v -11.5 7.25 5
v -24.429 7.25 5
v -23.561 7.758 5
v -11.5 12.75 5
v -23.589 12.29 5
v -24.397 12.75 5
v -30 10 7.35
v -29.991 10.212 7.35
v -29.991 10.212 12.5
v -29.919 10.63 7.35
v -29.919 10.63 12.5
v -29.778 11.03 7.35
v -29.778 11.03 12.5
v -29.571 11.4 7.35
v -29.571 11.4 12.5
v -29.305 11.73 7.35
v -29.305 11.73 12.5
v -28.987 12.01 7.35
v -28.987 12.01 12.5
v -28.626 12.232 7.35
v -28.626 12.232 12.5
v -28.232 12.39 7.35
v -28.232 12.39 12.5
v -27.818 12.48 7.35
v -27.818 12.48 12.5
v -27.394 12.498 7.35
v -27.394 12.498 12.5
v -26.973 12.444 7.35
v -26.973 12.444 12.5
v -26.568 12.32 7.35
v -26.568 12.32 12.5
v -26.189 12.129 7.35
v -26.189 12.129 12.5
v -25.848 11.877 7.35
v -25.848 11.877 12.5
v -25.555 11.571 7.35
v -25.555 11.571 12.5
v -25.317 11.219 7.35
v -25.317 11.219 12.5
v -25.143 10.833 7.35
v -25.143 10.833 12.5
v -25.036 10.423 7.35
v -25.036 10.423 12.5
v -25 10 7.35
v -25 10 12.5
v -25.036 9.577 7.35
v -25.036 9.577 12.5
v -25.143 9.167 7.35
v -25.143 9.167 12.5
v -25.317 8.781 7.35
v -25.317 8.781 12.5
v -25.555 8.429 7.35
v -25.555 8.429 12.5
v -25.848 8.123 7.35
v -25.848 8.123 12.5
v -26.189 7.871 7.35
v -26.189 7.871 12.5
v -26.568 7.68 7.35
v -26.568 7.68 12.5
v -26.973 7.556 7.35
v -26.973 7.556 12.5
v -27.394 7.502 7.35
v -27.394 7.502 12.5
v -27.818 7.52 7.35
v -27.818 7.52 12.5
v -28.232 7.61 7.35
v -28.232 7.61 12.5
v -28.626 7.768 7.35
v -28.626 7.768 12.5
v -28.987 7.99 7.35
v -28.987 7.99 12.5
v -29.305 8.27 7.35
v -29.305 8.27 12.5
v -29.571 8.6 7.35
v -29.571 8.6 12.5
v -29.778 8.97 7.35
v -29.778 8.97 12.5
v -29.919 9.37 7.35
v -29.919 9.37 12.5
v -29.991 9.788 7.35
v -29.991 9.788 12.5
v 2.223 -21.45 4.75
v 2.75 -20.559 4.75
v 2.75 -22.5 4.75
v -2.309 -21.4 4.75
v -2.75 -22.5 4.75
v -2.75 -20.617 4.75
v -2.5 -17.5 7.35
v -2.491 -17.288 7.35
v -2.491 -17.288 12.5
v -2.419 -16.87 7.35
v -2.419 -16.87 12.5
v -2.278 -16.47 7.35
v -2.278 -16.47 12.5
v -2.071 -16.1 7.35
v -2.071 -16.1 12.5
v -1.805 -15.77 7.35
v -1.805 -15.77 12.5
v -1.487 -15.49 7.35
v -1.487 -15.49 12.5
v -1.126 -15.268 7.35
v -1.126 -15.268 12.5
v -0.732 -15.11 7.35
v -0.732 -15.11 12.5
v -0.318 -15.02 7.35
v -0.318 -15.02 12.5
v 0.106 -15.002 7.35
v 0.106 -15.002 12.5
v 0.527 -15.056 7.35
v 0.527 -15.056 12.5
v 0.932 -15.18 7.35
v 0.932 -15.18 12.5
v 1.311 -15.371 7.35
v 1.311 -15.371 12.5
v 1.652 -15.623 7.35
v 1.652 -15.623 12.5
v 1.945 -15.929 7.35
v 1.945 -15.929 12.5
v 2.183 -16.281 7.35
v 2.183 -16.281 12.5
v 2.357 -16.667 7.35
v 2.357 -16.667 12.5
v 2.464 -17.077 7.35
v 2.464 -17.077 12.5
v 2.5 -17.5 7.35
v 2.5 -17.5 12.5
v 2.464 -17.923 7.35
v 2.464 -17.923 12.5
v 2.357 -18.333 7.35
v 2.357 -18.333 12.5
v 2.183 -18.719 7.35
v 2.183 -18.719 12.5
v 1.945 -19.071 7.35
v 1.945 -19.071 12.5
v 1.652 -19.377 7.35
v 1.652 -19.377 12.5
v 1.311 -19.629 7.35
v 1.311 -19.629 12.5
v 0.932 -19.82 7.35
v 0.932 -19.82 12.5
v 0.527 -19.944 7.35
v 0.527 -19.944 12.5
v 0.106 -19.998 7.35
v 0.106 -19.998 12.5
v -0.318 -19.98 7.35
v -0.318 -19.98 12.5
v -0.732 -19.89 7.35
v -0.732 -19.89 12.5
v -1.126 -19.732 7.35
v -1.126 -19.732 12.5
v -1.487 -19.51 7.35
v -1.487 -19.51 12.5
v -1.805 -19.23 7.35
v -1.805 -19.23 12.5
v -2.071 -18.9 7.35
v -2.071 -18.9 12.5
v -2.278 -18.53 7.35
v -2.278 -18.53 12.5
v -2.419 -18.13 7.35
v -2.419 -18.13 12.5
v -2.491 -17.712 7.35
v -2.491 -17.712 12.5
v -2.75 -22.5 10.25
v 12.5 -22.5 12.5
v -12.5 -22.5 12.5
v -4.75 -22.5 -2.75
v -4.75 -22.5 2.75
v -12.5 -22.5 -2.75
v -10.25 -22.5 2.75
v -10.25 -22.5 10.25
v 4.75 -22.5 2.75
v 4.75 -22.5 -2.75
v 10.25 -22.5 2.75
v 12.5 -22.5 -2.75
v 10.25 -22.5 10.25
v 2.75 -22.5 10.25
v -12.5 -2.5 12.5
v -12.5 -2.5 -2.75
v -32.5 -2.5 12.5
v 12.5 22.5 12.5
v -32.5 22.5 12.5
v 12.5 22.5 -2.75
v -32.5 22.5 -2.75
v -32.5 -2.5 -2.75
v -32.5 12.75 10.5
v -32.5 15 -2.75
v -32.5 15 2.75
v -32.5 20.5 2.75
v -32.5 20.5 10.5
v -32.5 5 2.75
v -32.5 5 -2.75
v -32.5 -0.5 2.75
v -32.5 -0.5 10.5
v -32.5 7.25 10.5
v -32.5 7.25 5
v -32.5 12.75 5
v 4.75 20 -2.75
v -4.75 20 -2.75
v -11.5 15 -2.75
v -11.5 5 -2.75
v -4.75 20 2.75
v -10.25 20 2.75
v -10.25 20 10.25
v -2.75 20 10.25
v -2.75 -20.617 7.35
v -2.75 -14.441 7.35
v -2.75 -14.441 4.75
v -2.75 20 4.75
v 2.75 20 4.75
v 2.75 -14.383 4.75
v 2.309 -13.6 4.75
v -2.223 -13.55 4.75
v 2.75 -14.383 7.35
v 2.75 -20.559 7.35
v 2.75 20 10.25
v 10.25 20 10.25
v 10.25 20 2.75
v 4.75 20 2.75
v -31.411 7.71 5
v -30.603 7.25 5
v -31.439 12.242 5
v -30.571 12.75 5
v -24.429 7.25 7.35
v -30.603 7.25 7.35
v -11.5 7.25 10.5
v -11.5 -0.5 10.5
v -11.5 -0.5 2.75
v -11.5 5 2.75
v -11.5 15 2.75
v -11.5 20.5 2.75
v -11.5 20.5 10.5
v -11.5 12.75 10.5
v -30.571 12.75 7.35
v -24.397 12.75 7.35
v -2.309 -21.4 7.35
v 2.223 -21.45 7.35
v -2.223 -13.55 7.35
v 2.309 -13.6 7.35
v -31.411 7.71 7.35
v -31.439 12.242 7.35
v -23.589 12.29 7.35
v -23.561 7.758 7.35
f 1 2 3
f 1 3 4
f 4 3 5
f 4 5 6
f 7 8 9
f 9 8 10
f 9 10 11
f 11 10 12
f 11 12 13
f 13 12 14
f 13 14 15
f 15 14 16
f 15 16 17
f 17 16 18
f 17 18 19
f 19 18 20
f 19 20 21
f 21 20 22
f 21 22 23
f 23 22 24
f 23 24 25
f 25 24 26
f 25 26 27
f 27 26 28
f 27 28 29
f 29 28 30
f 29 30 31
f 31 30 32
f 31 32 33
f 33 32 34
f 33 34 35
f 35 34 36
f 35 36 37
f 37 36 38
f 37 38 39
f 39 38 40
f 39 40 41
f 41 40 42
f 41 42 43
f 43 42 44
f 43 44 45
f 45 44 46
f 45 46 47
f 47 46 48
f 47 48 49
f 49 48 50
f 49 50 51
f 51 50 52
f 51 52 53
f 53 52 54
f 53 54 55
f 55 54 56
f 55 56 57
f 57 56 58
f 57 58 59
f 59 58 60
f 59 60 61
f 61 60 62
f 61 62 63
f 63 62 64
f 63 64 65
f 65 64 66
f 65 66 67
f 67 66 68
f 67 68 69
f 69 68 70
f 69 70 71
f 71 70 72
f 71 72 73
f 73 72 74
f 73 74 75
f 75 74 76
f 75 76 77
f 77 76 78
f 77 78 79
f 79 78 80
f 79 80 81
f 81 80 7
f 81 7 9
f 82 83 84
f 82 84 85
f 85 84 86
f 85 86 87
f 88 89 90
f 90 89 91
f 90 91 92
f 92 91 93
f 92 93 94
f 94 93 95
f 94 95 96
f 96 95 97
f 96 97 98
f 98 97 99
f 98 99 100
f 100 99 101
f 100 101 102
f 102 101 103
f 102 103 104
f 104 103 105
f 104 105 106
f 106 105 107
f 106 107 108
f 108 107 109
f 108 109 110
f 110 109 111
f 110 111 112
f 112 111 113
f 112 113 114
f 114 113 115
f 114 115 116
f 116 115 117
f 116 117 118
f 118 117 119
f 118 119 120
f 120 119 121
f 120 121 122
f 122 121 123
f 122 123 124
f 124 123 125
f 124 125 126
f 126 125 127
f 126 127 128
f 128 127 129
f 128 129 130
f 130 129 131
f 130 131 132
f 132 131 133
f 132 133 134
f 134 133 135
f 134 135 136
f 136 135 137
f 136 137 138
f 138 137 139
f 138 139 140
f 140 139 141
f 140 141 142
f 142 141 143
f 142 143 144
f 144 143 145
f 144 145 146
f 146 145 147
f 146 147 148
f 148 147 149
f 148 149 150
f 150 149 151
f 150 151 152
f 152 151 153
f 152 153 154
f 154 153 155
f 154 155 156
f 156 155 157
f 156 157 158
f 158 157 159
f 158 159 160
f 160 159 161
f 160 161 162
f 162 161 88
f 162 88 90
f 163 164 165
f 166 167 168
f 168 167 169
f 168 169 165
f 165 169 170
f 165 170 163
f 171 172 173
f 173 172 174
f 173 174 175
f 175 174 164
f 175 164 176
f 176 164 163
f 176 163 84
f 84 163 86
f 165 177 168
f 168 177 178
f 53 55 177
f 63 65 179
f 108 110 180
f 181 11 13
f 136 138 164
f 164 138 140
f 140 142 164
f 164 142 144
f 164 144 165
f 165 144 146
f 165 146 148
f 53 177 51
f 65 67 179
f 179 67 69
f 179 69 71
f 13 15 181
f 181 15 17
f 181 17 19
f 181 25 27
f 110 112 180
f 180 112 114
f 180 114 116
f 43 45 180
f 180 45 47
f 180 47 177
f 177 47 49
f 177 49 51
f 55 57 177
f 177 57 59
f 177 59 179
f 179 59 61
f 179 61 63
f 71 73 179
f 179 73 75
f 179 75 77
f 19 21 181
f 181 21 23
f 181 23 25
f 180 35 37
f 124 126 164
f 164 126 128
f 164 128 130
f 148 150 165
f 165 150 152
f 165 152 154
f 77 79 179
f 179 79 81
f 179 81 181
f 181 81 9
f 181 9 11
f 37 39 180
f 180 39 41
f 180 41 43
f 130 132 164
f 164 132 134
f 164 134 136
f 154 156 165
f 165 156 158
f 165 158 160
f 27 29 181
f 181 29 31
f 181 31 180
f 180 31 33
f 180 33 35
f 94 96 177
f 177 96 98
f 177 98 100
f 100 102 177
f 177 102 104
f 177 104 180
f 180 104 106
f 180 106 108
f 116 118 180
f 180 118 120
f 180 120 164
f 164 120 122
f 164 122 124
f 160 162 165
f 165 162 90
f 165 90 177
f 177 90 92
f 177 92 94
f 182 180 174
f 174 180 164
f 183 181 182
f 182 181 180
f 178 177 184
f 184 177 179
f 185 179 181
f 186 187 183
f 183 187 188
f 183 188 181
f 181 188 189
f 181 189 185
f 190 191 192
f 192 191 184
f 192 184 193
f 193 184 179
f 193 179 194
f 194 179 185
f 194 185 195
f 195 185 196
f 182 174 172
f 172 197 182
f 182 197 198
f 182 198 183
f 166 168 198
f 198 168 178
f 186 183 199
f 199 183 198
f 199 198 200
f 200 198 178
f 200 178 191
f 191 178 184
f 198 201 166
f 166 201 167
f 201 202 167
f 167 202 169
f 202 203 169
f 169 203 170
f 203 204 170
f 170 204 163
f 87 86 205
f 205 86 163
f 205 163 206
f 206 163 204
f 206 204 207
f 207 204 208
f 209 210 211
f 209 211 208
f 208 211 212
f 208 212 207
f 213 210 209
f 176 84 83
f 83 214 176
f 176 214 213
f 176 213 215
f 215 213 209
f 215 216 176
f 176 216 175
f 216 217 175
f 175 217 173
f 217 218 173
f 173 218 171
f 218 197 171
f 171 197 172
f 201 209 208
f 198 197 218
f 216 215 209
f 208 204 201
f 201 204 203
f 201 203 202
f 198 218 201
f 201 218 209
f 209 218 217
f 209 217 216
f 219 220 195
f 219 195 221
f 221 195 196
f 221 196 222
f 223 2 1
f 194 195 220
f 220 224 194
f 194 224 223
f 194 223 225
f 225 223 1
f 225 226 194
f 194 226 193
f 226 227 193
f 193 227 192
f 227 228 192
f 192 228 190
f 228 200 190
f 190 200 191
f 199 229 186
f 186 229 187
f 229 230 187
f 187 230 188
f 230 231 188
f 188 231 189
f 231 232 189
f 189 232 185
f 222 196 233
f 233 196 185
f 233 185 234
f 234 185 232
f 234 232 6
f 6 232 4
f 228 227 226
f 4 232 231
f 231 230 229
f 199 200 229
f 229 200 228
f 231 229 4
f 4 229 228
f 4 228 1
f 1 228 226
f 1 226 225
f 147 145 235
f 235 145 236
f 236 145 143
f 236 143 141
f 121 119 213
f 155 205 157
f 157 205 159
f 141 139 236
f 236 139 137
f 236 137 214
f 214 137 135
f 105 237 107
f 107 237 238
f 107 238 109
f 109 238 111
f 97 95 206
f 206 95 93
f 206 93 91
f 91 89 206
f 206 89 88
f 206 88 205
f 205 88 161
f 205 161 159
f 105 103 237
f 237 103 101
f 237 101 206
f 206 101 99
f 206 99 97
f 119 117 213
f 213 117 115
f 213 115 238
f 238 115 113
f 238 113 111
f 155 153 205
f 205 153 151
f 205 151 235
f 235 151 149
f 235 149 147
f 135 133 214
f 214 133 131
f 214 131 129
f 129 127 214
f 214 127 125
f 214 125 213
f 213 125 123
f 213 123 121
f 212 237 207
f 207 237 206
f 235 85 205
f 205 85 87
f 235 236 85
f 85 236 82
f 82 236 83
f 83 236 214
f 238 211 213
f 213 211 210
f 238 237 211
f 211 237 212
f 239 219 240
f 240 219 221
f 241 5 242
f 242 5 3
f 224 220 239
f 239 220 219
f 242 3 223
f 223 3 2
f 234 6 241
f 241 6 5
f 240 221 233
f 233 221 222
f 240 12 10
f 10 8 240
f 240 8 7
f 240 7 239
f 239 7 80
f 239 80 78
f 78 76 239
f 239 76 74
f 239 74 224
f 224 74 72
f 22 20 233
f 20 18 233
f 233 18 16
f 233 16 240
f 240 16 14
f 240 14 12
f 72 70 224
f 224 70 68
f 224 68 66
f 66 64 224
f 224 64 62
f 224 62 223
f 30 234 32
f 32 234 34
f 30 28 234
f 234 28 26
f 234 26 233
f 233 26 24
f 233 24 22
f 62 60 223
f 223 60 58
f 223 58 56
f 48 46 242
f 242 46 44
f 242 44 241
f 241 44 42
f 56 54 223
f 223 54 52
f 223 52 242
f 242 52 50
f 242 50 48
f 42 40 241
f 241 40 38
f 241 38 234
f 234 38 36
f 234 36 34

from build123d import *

# Parameters (mm, degrees)
SKETCH1_W           = 25
SKETCH1_H           = 25
BOSS_EXTRUDE1_DEPTH = 22.5
SKETCH4_W           = 25
SKETCH4_H           = 25
BOSS_EXTRUDE2_DEPTH = 20
CUT_EXTRUDE2_DEPTH  = 42.5
CUT_EXTRUDE3_DEPTH  = 21
SKETCH6_R           = 2.25
CUT_EXTRUDE4_DEPTH  = 10
SKETCH8_W           = 45
SKETCH8_H           = 9.75
CUT_EXTRUDE5_DEPTH  = 50
SKETCH10_R          = 2.5
CUT_EXTRUDE7_DEPTH  = 10
CUT_EXTRUDE8_DEPTH  = 2.6


with BuildPart() as part:
    # Sketch1 → Boss-Extrude1 (new, symmetric)
    with BuildSketch(Plane(origin=(0, 0, 0), x_dir=(1, 0, 0), z_dir=(0, 1, 0))):
        Rectangle(SKETCH1_W, SKETCH1_H)
    extrude(amount=BOSS_EXTRUDE1_DEPTH, both=True)

    # Sketch4 → Boss-Extrude2 (add)
    with BuildSketch(Plane.ZY.offset(12.5)):
        with Locations((0, 10)):
            Rectangle(SKETCH4_W, SKETCH4_H)
    extrude(amount=BOSS_EXTRUDE2_DEPTH)

    # Sketch3 → Cut-Extrude2 (cut)
    with BuildSketch(Plane.XZ.offset(22.5)):
        Polygon((-2.75, 4.75), (-2.75, 10.25), (-10.25, 10.25), (-10.25, 2.75), (-4.75, 2.75), (-4.75, -2.75), (-10.25, -2.75), (-10.25, -10.25), (-2.75, -10.25), (-2.75, -4.75), (2.75, -4.75), (2.75, -10.25), (10.25, -10.25), (10.25, -2.75), (4.75, -2.75), (4.75, 2.75), (10.25, 2.75), (10.25, 10.25), (2.75, 10.25), (2.75, 4.75), align=None)
    extrude(amount=-CUT_EXTRUDE2_DEPTH, mode=Mode.SUBTRACT)

    # Sketch5 → Cut-Extrude3 (cut)
    with BuildSketch(Plane.ZY.offset(32.5)):
        Polygon((-10.5, 7.25), (-10.5, -0.5), (-2.75, -0.5), (-2.75, 5), (2.75, 5), (2.75, -0.5), (10.5, -0.5), (10.5, 7.25), (5, 7.25), (5, 12.75), (10.5, 12.75), (10.5, 20.5), (2.75, 20.5), (2.75, 15), (-2.75, 15), (-2.75, 20.5), (-10.5, 20.5), (-10.5, 12.75), (-5, 12.75), (-5, 7.25), align=None)
    extrude(amount=-CUT_EXTRUDE3_DEPTH, mode=Mode.SUBTRACT)

    # Sketch6 → Cut-Extrude4 (cut)
    with BuildSketch(Plane(origin=(0, 0, -12.5), x_dir=(-1, 0, 0), z_dir=(0, 0, -1))):
        with Locations((0, -12.5)):
            Circle(SKETCH6_R)
        with Locations((22.5, 10)):
            Circle(SKETCH6_R)
    extrude(amount=-CUT_EXTRUDE4_DEPTH, mode=Mode.SUBTRACT)

    # Sketch8 → Cut-Extrude5 (cut)
    with BuildSketch(Plane(origin=(0, 22.5, 0), x_dir=(1, 0, 0), z_dir=(0, 1, 0))):
        with Locations((-10, 7.625)):
            Rectangle(SKETCH8_W, SKETCH8_H)
    extrude(amount=-CUT_EXTRUDE5_DEPTH, mode=Mode.SUBTRACT)

    # Sketch10 → Cut-Extrude7 (cut)
    with BuildSketch(Plane.XY.offset(12.5)):
        with Locations((-27.5, 10)):
            Circle(SKETCH10_R)
        with Locations((0, -17.5)):
            Circle(SKETCH10_R)
    extrude(amount=-CUT_EXTRUDE7_DEPTH, mode=Mode.SUBTRACT)

    # Sketch11 → Cut-Extrude8 (cut)
    with BuildSketch(Plane(origin=(0, 0, 4.75), x_dir=(-1, 0, 0), z_dir=(0, 0, -1))):
        Polygon((2.222626661, -13.550219745), (-2.309296709, -13.600258721), (-4.53192337, -17.550038976), (-2.222626661, -21.449780255), (2.309296709, -21.399741279), (4.53192337, -17.449961024), align=None)
        Polygon((31.438967259, 12.241733763), (27.528085243, 14.532112593), (23.589117983, 12.29037883), (23.561032741, 7.758266237), (27.471914757, 5.467887407), (31.410882017, 7.70962117), align=None)
    extrude(amount=-CUT_EXTRUDE8_DEPTH, mode=Mode.SUBTRACT)


solid = part.part
